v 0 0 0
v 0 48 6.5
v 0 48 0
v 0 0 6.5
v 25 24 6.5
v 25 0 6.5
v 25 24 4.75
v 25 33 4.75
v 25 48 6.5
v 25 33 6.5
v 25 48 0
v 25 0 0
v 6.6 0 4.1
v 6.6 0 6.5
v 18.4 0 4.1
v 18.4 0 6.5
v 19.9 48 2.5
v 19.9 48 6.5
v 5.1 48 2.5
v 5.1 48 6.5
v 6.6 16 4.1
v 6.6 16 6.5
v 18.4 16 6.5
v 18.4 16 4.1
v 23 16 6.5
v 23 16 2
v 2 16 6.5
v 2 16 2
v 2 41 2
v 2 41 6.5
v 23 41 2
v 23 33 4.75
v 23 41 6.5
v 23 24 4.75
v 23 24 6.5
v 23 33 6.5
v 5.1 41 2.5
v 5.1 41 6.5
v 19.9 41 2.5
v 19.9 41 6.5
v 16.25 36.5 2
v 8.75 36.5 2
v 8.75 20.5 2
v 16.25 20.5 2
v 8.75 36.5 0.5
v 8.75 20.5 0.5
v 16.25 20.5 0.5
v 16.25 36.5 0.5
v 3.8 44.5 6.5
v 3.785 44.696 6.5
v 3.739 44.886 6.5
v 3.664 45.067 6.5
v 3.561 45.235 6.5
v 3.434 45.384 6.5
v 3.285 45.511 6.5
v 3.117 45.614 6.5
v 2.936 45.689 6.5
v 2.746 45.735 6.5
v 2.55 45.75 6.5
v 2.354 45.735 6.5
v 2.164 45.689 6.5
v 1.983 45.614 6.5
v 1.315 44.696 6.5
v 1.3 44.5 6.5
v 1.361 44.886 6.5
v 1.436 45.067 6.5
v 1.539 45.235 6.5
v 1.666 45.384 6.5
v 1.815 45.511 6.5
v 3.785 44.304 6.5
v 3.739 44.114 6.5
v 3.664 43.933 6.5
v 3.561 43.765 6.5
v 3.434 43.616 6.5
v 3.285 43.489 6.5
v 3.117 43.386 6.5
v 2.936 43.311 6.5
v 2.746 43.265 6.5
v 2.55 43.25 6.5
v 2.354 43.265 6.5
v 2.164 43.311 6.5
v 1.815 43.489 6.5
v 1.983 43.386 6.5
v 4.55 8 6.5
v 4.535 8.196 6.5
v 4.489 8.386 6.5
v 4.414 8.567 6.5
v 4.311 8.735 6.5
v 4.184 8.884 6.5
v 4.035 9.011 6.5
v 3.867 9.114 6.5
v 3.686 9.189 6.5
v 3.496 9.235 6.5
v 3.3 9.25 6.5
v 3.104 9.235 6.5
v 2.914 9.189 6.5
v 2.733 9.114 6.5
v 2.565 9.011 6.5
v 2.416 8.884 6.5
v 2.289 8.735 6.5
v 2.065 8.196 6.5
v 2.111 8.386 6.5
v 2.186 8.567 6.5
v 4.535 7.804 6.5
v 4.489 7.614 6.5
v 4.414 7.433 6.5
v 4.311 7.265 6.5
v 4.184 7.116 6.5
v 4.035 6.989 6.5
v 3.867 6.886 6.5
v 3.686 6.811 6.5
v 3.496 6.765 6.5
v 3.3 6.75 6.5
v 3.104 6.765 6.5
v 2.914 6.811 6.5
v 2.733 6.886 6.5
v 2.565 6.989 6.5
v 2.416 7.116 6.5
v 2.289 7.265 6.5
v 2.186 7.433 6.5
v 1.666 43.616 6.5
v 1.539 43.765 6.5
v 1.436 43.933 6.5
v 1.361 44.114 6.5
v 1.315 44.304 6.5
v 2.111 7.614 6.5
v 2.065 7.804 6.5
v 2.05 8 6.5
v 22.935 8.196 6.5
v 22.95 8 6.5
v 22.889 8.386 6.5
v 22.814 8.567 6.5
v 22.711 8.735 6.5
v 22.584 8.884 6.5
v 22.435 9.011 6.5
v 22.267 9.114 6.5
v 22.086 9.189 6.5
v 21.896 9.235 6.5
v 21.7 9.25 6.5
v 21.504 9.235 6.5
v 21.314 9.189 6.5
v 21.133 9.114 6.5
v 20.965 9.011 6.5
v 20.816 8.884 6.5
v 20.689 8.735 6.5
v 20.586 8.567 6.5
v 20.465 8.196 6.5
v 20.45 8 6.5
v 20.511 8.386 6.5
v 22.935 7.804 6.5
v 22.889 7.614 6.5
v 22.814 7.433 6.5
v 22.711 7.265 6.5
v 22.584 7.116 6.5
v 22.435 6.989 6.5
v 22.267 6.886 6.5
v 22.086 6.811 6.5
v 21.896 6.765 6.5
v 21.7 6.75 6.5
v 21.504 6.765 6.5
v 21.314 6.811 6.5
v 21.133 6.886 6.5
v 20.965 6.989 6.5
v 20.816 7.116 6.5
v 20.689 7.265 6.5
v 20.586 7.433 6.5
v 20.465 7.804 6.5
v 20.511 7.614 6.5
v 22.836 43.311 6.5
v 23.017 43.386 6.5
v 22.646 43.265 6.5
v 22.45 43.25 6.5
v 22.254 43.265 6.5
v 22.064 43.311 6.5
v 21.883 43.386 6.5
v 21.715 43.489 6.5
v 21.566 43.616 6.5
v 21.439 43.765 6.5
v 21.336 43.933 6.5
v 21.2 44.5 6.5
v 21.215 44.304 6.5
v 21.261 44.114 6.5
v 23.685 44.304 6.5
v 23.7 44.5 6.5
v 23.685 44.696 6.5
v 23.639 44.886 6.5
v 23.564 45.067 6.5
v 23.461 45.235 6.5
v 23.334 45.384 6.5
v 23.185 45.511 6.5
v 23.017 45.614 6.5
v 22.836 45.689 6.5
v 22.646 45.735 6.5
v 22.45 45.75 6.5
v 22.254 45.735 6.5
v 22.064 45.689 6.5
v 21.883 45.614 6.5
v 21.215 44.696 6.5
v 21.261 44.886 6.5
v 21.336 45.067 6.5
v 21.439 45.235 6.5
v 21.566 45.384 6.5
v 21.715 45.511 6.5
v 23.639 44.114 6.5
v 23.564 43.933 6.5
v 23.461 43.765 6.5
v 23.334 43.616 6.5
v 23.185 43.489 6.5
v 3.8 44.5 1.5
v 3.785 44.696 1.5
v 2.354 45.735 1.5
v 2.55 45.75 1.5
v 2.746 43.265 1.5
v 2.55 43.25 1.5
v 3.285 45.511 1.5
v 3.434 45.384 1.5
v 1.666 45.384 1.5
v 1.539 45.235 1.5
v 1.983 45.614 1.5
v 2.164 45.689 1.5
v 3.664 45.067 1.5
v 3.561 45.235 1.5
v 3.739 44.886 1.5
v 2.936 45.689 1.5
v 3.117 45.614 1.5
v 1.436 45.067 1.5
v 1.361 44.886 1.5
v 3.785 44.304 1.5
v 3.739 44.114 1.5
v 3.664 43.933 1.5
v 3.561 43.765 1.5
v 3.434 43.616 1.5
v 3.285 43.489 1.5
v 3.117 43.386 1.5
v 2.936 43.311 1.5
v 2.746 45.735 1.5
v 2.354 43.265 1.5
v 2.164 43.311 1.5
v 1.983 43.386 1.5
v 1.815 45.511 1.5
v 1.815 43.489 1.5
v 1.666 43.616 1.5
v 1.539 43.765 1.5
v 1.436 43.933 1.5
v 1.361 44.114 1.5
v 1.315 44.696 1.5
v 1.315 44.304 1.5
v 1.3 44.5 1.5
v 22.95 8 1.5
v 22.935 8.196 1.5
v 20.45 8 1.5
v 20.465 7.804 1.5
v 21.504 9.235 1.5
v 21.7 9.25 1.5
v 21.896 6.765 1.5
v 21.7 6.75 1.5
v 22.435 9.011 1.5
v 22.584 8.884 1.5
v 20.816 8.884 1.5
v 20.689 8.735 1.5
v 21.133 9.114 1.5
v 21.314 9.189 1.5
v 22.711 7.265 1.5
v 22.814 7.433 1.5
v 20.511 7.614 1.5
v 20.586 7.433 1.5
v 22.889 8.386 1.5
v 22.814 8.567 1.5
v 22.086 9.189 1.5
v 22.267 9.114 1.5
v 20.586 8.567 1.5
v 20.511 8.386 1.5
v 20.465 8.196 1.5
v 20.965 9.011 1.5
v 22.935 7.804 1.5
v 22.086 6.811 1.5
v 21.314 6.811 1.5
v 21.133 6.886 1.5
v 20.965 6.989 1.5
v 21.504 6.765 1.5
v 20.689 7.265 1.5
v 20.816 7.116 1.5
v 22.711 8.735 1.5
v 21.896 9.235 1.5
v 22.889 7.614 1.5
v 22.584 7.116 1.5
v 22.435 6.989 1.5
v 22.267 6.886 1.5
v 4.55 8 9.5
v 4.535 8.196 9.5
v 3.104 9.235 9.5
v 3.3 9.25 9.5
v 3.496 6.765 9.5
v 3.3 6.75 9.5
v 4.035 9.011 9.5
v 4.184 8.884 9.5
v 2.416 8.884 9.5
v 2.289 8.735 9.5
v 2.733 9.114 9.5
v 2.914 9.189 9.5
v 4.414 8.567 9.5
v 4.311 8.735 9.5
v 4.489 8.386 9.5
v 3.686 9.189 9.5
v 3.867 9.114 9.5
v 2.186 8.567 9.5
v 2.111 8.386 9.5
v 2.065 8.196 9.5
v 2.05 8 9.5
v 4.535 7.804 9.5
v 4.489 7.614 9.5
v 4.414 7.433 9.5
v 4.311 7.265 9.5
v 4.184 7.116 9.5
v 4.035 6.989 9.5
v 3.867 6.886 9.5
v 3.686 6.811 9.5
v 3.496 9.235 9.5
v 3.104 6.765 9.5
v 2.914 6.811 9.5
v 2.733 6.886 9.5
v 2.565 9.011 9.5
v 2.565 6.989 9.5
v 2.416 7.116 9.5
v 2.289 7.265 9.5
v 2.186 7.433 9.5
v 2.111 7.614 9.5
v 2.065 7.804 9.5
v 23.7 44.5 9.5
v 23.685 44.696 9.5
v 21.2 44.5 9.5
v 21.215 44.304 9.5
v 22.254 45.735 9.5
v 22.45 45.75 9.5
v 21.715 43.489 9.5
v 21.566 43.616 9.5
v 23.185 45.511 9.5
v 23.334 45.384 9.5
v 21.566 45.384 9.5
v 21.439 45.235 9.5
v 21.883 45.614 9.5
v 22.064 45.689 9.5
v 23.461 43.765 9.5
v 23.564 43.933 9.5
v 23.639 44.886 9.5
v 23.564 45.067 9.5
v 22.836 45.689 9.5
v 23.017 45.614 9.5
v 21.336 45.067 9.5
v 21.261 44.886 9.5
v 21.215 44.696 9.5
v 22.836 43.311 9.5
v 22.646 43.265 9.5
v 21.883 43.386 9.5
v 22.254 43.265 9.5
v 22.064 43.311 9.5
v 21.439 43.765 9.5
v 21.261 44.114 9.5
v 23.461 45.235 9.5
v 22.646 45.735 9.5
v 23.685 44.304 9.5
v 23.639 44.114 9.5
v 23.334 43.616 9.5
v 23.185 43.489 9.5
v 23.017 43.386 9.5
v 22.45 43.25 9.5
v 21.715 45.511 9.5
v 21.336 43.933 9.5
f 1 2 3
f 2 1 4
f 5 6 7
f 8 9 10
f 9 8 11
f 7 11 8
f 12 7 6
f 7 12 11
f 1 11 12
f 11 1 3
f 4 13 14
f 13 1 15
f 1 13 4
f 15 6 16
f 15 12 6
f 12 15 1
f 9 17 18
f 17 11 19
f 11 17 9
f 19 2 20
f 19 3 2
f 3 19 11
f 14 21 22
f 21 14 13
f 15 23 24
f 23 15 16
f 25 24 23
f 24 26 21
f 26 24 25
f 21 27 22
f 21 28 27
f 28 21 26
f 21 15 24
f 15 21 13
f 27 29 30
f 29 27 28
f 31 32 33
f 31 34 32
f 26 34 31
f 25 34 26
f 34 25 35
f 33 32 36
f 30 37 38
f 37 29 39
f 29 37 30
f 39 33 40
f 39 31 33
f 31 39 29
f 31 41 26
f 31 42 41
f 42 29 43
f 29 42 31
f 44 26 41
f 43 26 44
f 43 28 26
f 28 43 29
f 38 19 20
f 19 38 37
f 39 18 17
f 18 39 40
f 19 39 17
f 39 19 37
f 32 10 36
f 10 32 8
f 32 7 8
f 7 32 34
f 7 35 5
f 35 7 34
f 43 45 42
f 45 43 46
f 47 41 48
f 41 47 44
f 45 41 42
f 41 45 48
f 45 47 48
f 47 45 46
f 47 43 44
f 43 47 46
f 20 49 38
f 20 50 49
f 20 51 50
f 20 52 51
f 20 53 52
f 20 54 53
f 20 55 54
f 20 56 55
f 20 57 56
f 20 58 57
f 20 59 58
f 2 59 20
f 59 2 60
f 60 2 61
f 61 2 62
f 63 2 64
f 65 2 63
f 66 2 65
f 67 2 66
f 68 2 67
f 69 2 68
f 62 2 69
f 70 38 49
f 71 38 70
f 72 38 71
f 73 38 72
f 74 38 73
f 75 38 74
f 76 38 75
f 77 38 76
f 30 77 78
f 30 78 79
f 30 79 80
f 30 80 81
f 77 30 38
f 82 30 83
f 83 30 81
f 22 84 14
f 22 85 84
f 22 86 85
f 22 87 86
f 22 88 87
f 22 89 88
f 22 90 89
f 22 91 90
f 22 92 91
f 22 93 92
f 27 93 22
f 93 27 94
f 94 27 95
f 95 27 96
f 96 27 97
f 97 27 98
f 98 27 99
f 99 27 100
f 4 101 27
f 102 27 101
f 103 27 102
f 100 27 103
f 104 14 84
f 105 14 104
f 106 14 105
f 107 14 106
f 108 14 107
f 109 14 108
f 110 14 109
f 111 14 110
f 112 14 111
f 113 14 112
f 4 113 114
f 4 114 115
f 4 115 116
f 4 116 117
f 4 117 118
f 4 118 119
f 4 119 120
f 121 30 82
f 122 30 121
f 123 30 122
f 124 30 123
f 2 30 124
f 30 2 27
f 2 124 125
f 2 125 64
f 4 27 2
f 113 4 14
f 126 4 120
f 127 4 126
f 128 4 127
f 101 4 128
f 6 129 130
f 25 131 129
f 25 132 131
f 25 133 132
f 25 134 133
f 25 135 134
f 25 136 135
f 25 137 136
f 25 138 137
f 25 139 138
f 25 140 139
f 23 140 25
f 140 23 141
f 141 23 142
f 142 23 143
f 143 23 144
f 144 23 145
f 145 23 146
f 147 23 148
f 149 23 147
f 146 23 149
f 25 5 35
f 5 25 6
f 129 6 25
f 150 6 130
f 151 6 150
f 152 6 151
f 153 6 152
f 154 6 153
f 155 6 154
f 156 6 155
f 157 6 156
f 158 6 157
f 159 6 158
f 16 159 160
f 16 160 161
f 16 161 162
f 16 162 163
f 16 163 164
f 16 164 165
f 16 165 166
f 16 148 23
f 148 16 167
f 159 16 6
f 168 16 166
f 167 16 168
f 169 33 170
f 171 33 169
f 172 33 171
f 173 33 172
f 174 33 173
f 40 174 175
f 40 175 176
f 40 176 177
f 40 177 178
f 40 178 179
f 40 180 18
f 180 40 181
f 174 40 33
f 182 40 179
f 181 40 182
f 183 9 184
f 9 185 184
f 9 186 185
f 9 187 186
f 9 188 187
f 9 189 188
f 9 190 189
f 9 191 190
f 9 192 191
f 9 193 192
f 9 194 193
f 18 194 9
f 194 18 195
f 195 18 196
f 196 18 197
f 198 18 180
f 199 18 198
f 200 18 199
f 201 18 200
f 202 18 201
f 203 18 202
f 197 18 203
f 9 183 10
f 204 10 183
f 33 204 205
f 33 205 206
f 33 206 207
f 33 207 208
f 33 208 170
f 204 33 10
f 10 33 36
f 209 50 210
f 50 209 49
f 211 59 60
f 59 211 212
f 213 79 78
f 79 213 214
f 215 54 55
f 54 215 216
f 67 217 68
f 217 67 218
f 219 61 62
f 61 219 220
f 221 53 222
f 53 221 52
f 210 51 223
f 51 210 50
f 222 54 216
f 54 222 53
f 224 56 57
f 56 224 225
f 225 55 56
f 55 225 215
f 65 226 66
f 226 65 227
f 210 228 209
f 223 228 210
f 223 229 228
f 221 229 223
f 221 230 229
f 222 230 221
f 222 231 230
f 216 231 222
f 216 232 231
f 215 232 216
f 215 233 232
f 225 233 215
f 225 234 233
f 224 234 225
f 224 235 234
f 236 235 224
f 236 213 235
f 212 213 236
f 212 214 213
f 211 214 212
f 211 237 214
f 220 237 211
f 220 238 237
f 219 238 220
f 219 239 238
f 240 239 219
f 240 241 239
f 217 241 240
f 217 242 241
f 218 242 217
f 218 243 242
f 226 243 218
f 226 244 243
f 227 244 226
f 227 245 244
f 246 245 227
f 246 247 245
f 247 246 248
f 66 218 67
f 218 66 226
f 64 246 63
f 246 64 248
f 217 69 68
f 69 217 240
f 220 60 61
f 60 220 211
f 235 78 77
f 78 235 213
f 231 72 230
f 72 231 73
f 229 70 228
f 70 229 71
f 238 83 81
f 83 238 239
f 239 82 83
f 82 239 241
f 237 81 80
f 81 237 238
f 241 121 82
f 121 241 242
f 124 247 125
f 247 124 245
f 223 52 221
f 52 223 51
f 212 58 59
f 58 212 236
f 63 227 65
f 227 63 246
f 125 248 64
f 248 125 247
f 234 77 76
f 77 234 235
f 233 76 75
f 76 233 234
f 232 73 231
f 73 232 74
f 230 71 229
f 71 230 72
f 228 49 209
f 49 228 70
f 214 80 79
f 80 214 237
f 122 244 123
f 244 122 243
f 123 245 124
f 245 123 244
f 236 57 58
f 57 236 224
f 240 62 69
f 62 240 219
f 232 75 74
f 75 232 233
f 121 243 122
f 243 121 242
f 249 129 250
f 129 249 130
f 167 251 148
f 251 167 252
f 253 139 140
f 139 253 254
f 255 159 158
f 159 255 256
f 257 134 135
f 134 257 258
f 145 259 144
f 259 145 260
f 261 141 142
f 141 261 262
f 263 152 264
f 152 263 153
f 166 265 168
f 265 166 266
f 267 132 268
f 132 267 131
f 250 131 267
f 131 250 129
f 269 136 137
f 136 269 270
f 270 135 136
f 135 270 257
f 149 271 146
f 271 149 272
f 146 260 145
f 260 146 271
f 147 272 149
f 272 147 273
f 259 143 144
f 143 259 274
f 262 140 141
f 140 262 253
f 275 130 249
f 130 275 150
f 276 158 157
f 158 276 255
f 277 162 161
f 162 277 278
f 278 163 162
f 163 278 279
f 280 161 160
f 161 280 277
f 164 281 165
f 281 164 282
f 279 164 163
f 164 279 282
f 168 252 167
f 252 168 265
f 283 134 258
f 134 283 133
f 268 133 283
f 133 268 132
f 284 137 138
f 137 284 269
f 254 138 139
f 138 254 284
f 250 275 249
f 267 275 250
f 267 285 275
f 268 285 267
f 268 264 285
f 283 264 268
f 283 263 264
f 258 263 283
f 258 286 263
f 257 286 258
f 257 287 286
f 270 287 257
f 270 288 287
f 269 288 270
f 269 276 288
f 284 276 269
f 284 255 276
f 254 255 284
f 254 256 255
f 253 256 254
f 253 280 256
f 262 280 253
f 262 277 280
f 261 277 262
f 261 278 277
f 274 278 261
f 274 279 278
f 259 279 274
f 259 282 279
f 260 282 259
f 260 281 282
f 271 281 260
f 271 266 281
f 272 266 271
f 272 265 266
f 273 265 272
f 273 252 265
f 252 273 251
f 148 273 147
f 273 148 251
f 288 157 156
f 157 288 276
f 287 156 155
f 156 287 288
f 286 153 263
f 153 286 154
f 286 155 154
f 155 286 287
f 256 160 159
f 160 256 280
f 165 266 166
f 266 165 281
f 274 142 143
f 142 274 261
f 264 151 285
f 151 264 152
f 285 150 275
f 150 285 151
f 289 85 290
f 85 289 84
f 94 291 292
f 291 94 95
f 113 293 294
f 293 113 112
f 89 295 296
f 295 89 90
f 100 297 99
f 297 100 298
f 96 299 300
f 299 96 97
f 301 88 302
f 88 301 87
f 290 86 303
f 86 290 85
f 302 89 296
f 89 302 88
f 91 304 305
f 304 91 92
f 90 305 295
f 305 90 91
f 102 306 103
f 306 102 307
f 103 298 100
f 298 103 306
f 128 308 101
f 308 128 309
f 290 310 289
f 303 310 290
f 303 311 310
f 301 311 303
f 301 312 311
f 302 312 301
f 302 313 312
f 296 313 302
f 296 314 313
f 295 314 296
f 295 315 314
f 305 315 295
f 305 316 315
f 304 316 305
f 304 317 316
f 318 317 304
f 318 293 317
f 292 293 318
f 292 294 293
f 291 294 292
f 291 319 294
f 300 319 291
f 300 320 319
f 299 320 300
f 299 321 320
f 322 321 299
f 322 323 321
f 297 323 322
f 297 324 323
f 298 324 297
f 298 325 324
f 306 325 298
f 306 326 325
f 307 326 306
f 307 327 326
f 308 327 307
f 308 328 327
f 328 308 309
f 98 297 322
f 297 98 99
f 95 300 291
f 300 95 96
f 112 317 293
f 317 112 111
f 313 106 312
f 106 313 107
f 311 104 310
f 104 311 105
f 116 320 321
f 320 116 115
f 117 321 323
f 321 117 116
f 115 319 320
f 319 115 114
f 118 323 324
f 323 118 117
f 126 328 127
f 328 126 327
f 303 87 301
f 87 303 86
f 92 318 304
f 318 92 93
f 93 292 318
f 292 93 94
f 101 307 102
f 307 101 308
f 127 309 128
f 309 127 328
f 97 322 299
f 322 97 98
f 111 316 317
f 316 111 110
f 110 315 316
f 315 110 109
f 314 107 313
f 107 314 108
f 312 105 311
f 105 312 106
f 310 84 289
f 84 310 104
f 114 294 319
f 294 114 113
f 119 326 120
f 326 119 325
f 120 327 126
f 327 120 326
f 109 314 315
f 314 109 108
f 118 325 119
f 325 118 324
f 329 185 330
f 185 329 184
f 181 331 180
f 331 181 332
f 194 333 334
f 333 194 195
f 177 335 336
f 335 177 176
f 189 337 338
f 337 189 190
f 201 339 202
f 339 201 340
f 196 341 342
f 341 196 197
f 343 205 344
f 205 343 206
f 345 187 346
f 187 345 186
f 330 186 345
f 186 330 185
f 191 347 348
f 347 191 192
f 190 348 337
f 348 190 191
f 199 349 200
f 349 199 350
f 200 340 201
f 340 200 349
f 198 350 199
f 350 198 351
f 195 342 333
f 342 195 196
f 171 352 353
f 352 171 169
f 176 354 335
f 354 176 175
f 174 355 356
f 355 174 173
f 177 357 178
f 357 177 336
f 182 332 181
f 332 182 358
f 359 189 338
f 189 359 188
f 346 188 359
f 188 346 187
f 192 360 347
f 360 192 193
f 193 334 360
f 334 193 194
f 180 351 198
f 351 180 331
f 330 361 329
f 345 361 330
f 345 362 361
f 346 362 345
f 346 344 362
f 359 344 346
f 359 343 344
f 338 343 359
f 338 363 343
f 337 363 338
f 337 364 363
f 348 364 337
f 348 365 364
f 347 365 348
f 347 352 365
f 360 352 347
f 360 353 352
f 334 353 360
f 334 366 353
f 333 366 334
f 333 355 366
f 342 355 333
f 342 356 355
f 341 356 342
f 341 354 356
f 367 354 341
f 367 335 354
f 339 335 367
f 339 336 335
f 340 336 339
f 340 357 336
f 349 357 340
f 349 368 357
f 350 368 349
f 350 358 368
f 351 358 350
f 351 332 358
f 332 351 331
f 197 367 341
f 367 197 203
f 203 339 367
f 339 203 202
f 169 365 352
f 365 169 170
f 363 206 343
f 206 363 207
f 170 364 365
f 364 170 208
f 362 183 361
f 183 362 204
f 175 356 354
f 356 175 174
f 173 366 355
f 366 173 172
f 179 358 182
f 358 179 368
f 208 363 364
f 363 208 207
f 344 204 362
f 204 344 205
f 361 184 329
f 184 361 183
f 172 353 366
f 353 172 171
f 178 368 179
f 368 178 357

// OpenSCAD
$fn=40;

USB_width = 11.8;
USB_height = 4.8;
USB_length = 16;

USBC_Height = 3.5;
USBC_Width = 9;
USBC_Side = 1;

BoardWidth = 21;
BoardHeight = 9;
Board_Length = 25;

Sensor_Width = 14.8;
Sensor_Height = 8;
Sensor_Length = 7;

LED_Length = 16;
LED_Width = 7.5;

wall = 2;
connector_Diameter = 2.5;
connector_Height = 6;

Full_Length = USB_length + Board_Length + Sensor_Length ;
Full_Heigh = BoardHeight + 2 * wall;
Full_Width = BoardWidth + 2 * wall;

upper = 1;

difference()
{
    cube([BoardWidth+2*wall, Full_Length, Full_Heigh]);
    translate([(Full_Width- USB_width)/2, 0 , (Full_Heigh-USB_height)/2])
        cube([USB_width, USB_length, USB_height]);
    translate([(Full_Width-BoardWidth)/2, USB_length , (Full_Heigh-BoardHeight)/2])
        cube([BoardWidth, Board_Length, BoardHeight]);
    translate([(Full_Width-Sensor_Width)/2, USB_length+Board_Length , (Full_Heigh-Sensor_Height)/2])
        cube([Sensor_Width, Sensor_Length, Sensor_Height]);
    // USB-C
    translate([(Full_Width-wall)*USBC_Side, USB_length+(Board_Length-USBC_Width)/2 , (Full_Heigh-USBC_Height)/2])
        cube([5, USBC_Width, USBC_Height]);

    // LED
    translate([(Full_Width-LED_Width)/2, USB_length+(Board_Length-LED_Length)/2 , 0.5])
        cube([LED_Width, LED_Length, LED_Width]);

    translate([-1,-1,Full_Heigh/2*upper])
        cube([BoardWidth+2*wall+2, Full_Length+2, Full_Heigh/2+.001]);

    translate([(Full_Width-Sensor_Width)/4, Full_Length-Sensor_Length/2, (Full_Heigh-connector_Height)/2-2])
        cylinder(d=connector_Diameter, h=connector_Height+2);
    translate([Full_Width-(Full_Width-USB_width)/4, USB_length/2, (Full_Heigh-connector_Height)/2-2])
        cylinder(d=connector_Diameter, h=connector_Height+2);
}



translate([(Full_Width-USB_width)/4, USB_length/2, (Full_Heigh-connector_Height)/2])
    cylinder(d=connector_Diameter, h=connector_Height);
translate([Full_Width-(Full_Width-Sensor_Width)/4, Full_Length-Sensor_Length/2, (Full_Heigh-connector_Height)/2])
    cylinder(d=connector_Diameter, h=connector_Height);
